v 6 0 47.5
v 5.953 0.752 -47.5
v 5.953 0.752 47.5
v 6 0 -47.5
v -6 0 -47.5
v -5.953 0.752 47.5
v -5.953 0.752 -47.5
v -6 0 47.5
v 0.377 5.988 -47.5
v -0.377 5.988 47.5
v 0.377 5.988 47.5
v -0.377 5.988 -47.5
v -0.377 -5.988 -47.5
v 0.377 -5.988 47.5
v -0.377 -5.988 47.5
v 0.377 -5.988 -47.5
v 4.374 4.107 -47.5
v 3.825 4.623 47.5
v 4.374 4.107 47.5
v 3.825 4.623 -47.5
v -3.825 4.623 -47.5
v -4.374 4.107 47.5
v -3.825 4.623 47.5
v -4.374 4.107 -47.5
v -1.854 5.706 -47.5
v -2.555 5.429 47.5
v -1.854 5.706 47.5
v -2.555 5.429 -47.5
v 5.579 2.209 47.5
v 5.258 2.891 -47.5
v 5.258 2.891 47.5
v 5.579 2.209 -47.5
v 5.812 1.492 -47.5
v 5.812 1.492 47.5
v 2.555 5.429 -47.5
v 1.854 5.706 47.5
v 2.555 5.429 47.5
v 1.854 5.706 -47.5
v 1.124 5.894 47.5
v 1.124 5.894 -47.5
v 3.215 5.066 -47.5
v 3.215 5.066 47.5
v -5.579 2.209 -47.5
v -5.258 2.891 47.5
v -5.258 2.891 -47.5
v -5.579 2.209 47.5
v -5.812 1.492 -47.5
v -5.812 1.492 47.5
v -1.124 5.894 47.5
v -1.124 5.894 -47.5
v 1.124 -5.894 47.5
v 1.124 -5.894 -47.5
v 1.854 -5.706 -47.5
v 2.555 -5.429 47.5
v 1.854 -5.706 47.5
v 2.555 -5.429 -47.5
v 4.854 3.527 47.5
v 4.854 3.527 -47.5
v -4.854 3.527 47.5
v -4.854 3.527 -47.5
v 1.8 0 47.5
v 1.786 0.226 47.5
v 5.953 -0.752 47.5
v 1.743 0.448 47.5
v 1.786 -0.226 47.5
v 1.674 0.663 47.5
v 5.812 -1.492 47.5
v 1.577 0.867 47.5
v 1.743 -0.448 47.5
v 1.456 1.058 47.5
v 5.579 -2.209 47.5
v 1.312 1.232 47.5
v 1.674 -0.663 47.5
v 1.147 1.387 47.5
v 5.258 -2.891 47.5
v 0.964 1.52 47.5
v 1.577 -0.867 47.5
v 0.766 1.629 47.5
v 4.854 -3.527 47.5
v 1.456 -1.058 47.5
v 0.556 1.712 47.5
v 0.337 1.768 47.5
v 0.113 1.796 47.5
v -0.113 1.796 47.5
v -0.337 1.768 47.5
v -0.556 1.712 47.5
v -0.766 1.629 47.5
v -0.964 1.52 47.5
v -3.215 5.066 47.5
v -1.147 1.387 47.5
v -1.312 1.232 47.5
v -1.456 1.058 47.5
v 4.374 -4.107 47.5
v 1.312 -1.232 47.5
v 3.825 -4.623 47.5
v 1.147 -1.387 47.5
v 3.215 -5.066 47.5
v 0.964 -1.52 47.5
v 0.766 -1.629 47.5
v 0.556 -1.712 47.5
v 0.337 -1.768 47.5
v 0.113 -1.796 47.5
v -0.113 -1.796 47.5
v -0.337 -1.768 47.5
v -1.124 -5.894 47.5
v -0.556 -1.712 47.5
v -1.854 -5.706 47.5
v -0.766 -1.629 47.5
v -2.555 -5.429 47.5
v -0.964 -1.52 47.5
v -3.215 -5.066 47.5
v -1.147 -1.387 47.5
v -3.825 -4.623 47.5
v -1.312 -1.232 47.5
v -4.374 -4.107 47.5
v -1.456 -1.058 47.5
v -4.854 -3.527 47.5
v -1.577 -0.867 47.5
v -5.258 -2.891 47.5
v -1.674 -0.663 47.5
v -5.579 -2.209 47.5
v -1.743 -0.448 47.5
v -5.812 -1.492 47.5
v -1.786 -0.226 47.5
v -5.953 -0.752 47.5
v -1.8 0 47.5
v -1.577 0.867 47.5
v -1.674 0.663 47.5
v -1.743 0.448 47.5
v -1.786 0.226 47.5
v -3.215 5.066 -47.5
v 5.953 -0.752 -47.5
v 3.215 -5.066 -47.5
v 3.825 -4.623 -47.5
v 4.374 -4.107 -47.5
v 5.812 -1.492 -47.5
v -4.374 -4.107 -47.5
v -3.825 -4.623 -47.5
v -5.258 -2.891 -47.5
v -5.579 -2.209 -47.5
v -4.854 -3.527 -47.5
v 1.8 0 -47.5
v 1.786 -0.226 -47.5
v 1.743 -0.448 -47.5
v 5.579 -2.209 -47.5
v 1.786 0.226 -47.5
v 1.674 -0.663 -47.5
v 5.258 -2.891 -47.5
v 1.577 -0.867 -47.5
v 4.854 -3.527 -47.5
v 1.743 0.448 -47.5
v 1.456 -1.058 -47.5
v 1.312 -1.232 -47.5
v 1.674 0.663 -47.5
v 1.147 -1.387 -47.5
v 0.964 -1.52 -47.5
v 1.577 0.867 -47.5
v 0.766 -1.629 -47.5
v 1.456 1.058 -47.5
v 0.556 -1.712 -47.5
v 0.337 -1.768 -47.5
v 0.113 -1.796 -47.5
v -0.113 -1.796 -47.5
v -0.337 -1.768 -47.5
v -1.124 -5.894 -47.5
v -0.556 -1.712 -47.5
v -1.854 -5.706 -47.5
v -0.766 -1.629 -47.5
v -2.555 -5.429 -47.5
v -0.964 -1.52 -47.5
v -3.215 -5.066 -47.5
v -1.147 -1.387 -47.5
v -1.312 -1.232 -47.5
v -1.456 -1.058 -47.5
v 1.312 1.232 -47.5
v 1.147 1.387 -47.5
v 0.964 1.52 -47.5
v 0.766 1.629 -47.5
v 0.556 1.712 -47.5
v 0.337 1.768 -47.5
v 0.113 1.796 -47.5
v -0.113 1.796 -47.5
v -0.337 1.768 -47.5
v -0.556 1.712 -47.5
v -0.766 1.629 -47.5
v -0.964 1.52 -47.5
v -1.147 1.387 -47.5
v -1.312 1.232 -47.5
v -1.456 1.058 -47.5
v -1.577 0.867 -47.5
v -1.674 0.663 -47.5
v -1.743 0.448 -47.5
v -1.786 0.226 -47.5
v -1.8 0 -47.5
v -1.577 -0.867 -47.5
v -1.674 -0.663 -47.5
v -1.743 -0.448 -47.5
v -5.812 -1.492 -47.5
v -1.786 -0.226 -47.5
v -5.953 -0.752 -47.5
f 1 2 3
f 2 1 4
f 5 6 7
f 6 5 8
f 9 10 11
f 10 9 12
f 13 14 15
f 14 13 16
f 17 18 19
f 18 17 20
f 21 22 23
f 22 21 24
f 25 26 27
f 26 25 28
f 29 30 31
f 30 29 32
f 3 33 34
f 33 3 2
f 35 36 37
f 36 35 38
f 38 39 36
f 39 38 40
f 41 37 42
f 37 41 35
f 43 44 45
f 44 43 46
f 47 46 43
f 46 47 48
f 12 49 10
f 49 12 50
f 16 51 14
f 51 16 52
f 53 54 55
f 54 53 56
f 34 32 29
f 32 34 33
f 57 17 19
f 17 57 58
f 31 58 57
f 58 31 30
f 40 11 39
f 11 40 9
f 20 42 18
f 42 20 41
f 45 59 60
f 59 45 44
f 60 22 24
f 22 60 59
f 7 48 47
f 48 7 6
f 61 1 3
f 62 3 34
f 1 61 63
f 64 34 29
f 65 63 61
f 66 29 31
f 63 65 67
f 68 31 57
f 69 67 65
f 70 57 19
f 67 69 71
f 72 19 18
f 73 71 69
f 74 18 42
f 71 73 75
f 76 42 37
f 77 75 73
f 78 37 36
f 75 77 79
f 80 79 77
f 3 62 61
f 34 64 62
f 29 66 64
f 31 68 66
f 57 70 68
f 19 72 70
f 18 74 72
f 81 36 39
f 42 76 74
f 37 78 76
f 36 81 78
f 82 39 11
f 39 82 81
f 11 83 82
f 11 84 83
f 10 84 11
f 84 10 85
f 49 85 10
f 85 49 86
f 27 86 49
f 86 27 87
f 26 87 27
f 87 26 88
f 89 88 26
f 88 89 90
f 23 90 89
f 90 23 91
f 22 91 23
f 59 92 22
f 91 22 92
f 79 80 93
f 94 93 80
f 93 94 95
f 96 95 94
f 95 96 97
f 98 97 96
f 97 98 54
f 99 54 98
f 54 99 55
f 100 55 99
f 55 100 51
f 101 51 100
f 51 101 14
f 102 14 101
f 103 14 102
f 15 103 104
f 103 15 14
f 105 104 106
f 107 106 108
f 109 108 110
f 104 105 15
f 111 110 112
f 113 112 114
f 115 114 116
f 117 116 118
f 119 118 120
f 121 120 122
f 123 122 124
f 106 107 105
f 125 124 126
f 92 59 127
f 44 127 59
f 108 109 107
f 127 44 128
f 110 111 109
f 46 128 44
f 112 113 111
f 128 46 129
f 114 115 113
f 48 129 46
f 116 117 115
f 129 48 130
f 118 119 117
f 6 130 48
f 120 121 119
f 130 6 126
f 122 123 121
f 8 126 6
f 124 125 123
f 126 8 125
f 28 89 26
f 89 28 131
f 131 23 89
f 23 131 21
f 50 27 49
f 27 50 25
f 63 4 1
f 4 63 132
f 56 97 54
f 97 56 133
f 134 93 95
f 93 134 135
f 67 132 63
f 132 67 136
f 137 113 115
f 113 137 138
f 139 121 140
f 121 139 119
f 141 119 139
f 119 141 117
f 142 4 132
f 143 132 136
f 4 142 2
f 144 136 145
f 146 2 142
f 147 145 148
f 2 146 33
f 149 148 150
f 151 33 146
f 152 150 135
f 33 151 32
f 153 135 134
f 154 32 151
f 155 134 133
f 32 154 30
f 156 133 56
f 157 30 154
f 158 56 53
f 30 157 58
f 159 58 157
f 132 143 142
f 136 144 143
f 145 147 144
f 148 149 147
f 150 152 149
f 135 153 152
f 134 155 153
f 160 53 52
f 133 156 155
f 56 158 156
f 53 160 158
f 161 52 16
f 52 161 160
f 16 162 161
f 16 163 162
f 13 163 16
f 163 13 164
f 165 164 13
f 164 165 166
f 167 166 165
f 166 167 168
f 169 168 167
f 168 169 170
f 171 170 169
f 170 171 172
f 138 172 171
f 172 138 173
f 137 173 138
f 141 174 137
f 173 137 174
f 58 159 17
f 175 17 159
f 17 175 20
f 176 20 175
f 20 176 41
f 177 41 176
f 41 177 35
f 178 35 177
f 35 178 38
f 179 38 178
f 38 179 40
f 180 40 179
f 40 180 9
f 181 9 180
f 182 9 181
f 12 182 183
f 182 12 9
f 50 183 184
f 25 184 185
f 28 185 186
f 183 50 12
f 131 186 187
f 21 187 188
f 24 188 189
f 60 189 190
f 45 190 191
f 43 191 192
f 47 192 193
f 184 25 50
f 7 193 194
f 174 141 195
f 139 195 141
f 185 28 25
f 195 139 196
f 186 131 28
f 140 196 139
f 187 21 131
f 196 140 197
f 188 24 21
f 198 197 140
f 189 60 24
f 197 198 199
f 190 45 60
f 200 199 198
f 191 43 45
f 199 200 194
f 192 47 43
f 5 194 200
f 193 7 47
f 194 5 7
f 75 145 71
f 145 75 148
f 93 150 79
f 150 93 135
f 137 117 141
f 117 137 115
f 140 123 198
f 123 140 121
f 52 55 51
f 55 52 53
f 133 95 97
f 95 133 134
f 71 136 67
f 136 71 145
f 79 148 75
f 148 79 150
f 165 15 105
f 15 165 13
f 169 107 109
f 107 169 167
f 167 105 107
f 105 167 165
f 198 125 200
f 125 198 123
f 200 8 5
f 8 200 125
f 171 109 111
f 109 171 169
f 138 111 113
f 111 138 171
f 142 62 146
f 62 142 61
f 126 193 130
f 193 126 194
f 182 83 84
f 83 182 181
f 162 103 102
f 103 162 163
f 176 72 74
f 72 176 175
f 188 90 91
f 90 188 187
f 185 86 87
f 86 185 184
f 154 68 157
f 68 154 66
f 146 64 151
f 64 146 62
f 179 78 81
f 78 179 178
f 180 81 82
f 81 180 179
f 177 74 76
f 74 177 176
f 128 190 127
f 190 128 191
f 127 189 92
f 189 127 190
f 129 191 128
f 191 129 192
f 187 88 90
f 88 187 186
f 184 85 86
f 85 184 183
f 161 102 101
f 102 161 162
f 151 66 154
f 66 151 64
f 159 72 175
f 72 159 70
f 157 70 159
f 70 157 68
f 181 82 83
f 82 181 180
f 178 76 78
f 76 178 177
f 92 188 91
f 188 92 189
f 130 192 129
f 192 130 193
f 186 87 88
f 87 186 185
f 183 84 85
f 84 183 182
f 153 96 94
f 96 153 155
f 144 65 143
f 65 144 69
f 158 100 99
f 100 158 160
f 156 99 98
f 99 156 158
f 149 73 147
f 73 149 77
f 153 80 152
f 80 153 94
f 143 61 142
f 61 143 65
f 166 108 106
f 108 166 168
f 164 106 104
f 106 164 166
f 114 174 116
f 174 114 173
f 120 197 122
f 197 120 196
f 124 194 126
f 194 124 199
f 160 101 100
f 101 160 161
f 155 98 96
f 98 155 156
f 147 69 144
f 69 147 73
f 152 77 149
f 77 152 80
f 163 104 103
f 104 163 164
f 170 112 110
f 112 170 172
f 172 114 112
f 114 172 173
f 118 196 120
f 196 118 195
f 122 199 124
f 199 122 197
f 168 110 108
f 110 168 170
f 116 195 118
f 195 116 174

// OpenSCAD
$fn = 50;


difference() {
	union() {
		translate(v = [0, 0, -47.5000000000]) {
			cylinder(h = 95, r = 6.0000000000);
		}
	}
	union() {
		translate(v = [0, 0, -100.0000000000]) {
			cylinder(h = 200, r = 1.8000000000);
		}
	}
}
